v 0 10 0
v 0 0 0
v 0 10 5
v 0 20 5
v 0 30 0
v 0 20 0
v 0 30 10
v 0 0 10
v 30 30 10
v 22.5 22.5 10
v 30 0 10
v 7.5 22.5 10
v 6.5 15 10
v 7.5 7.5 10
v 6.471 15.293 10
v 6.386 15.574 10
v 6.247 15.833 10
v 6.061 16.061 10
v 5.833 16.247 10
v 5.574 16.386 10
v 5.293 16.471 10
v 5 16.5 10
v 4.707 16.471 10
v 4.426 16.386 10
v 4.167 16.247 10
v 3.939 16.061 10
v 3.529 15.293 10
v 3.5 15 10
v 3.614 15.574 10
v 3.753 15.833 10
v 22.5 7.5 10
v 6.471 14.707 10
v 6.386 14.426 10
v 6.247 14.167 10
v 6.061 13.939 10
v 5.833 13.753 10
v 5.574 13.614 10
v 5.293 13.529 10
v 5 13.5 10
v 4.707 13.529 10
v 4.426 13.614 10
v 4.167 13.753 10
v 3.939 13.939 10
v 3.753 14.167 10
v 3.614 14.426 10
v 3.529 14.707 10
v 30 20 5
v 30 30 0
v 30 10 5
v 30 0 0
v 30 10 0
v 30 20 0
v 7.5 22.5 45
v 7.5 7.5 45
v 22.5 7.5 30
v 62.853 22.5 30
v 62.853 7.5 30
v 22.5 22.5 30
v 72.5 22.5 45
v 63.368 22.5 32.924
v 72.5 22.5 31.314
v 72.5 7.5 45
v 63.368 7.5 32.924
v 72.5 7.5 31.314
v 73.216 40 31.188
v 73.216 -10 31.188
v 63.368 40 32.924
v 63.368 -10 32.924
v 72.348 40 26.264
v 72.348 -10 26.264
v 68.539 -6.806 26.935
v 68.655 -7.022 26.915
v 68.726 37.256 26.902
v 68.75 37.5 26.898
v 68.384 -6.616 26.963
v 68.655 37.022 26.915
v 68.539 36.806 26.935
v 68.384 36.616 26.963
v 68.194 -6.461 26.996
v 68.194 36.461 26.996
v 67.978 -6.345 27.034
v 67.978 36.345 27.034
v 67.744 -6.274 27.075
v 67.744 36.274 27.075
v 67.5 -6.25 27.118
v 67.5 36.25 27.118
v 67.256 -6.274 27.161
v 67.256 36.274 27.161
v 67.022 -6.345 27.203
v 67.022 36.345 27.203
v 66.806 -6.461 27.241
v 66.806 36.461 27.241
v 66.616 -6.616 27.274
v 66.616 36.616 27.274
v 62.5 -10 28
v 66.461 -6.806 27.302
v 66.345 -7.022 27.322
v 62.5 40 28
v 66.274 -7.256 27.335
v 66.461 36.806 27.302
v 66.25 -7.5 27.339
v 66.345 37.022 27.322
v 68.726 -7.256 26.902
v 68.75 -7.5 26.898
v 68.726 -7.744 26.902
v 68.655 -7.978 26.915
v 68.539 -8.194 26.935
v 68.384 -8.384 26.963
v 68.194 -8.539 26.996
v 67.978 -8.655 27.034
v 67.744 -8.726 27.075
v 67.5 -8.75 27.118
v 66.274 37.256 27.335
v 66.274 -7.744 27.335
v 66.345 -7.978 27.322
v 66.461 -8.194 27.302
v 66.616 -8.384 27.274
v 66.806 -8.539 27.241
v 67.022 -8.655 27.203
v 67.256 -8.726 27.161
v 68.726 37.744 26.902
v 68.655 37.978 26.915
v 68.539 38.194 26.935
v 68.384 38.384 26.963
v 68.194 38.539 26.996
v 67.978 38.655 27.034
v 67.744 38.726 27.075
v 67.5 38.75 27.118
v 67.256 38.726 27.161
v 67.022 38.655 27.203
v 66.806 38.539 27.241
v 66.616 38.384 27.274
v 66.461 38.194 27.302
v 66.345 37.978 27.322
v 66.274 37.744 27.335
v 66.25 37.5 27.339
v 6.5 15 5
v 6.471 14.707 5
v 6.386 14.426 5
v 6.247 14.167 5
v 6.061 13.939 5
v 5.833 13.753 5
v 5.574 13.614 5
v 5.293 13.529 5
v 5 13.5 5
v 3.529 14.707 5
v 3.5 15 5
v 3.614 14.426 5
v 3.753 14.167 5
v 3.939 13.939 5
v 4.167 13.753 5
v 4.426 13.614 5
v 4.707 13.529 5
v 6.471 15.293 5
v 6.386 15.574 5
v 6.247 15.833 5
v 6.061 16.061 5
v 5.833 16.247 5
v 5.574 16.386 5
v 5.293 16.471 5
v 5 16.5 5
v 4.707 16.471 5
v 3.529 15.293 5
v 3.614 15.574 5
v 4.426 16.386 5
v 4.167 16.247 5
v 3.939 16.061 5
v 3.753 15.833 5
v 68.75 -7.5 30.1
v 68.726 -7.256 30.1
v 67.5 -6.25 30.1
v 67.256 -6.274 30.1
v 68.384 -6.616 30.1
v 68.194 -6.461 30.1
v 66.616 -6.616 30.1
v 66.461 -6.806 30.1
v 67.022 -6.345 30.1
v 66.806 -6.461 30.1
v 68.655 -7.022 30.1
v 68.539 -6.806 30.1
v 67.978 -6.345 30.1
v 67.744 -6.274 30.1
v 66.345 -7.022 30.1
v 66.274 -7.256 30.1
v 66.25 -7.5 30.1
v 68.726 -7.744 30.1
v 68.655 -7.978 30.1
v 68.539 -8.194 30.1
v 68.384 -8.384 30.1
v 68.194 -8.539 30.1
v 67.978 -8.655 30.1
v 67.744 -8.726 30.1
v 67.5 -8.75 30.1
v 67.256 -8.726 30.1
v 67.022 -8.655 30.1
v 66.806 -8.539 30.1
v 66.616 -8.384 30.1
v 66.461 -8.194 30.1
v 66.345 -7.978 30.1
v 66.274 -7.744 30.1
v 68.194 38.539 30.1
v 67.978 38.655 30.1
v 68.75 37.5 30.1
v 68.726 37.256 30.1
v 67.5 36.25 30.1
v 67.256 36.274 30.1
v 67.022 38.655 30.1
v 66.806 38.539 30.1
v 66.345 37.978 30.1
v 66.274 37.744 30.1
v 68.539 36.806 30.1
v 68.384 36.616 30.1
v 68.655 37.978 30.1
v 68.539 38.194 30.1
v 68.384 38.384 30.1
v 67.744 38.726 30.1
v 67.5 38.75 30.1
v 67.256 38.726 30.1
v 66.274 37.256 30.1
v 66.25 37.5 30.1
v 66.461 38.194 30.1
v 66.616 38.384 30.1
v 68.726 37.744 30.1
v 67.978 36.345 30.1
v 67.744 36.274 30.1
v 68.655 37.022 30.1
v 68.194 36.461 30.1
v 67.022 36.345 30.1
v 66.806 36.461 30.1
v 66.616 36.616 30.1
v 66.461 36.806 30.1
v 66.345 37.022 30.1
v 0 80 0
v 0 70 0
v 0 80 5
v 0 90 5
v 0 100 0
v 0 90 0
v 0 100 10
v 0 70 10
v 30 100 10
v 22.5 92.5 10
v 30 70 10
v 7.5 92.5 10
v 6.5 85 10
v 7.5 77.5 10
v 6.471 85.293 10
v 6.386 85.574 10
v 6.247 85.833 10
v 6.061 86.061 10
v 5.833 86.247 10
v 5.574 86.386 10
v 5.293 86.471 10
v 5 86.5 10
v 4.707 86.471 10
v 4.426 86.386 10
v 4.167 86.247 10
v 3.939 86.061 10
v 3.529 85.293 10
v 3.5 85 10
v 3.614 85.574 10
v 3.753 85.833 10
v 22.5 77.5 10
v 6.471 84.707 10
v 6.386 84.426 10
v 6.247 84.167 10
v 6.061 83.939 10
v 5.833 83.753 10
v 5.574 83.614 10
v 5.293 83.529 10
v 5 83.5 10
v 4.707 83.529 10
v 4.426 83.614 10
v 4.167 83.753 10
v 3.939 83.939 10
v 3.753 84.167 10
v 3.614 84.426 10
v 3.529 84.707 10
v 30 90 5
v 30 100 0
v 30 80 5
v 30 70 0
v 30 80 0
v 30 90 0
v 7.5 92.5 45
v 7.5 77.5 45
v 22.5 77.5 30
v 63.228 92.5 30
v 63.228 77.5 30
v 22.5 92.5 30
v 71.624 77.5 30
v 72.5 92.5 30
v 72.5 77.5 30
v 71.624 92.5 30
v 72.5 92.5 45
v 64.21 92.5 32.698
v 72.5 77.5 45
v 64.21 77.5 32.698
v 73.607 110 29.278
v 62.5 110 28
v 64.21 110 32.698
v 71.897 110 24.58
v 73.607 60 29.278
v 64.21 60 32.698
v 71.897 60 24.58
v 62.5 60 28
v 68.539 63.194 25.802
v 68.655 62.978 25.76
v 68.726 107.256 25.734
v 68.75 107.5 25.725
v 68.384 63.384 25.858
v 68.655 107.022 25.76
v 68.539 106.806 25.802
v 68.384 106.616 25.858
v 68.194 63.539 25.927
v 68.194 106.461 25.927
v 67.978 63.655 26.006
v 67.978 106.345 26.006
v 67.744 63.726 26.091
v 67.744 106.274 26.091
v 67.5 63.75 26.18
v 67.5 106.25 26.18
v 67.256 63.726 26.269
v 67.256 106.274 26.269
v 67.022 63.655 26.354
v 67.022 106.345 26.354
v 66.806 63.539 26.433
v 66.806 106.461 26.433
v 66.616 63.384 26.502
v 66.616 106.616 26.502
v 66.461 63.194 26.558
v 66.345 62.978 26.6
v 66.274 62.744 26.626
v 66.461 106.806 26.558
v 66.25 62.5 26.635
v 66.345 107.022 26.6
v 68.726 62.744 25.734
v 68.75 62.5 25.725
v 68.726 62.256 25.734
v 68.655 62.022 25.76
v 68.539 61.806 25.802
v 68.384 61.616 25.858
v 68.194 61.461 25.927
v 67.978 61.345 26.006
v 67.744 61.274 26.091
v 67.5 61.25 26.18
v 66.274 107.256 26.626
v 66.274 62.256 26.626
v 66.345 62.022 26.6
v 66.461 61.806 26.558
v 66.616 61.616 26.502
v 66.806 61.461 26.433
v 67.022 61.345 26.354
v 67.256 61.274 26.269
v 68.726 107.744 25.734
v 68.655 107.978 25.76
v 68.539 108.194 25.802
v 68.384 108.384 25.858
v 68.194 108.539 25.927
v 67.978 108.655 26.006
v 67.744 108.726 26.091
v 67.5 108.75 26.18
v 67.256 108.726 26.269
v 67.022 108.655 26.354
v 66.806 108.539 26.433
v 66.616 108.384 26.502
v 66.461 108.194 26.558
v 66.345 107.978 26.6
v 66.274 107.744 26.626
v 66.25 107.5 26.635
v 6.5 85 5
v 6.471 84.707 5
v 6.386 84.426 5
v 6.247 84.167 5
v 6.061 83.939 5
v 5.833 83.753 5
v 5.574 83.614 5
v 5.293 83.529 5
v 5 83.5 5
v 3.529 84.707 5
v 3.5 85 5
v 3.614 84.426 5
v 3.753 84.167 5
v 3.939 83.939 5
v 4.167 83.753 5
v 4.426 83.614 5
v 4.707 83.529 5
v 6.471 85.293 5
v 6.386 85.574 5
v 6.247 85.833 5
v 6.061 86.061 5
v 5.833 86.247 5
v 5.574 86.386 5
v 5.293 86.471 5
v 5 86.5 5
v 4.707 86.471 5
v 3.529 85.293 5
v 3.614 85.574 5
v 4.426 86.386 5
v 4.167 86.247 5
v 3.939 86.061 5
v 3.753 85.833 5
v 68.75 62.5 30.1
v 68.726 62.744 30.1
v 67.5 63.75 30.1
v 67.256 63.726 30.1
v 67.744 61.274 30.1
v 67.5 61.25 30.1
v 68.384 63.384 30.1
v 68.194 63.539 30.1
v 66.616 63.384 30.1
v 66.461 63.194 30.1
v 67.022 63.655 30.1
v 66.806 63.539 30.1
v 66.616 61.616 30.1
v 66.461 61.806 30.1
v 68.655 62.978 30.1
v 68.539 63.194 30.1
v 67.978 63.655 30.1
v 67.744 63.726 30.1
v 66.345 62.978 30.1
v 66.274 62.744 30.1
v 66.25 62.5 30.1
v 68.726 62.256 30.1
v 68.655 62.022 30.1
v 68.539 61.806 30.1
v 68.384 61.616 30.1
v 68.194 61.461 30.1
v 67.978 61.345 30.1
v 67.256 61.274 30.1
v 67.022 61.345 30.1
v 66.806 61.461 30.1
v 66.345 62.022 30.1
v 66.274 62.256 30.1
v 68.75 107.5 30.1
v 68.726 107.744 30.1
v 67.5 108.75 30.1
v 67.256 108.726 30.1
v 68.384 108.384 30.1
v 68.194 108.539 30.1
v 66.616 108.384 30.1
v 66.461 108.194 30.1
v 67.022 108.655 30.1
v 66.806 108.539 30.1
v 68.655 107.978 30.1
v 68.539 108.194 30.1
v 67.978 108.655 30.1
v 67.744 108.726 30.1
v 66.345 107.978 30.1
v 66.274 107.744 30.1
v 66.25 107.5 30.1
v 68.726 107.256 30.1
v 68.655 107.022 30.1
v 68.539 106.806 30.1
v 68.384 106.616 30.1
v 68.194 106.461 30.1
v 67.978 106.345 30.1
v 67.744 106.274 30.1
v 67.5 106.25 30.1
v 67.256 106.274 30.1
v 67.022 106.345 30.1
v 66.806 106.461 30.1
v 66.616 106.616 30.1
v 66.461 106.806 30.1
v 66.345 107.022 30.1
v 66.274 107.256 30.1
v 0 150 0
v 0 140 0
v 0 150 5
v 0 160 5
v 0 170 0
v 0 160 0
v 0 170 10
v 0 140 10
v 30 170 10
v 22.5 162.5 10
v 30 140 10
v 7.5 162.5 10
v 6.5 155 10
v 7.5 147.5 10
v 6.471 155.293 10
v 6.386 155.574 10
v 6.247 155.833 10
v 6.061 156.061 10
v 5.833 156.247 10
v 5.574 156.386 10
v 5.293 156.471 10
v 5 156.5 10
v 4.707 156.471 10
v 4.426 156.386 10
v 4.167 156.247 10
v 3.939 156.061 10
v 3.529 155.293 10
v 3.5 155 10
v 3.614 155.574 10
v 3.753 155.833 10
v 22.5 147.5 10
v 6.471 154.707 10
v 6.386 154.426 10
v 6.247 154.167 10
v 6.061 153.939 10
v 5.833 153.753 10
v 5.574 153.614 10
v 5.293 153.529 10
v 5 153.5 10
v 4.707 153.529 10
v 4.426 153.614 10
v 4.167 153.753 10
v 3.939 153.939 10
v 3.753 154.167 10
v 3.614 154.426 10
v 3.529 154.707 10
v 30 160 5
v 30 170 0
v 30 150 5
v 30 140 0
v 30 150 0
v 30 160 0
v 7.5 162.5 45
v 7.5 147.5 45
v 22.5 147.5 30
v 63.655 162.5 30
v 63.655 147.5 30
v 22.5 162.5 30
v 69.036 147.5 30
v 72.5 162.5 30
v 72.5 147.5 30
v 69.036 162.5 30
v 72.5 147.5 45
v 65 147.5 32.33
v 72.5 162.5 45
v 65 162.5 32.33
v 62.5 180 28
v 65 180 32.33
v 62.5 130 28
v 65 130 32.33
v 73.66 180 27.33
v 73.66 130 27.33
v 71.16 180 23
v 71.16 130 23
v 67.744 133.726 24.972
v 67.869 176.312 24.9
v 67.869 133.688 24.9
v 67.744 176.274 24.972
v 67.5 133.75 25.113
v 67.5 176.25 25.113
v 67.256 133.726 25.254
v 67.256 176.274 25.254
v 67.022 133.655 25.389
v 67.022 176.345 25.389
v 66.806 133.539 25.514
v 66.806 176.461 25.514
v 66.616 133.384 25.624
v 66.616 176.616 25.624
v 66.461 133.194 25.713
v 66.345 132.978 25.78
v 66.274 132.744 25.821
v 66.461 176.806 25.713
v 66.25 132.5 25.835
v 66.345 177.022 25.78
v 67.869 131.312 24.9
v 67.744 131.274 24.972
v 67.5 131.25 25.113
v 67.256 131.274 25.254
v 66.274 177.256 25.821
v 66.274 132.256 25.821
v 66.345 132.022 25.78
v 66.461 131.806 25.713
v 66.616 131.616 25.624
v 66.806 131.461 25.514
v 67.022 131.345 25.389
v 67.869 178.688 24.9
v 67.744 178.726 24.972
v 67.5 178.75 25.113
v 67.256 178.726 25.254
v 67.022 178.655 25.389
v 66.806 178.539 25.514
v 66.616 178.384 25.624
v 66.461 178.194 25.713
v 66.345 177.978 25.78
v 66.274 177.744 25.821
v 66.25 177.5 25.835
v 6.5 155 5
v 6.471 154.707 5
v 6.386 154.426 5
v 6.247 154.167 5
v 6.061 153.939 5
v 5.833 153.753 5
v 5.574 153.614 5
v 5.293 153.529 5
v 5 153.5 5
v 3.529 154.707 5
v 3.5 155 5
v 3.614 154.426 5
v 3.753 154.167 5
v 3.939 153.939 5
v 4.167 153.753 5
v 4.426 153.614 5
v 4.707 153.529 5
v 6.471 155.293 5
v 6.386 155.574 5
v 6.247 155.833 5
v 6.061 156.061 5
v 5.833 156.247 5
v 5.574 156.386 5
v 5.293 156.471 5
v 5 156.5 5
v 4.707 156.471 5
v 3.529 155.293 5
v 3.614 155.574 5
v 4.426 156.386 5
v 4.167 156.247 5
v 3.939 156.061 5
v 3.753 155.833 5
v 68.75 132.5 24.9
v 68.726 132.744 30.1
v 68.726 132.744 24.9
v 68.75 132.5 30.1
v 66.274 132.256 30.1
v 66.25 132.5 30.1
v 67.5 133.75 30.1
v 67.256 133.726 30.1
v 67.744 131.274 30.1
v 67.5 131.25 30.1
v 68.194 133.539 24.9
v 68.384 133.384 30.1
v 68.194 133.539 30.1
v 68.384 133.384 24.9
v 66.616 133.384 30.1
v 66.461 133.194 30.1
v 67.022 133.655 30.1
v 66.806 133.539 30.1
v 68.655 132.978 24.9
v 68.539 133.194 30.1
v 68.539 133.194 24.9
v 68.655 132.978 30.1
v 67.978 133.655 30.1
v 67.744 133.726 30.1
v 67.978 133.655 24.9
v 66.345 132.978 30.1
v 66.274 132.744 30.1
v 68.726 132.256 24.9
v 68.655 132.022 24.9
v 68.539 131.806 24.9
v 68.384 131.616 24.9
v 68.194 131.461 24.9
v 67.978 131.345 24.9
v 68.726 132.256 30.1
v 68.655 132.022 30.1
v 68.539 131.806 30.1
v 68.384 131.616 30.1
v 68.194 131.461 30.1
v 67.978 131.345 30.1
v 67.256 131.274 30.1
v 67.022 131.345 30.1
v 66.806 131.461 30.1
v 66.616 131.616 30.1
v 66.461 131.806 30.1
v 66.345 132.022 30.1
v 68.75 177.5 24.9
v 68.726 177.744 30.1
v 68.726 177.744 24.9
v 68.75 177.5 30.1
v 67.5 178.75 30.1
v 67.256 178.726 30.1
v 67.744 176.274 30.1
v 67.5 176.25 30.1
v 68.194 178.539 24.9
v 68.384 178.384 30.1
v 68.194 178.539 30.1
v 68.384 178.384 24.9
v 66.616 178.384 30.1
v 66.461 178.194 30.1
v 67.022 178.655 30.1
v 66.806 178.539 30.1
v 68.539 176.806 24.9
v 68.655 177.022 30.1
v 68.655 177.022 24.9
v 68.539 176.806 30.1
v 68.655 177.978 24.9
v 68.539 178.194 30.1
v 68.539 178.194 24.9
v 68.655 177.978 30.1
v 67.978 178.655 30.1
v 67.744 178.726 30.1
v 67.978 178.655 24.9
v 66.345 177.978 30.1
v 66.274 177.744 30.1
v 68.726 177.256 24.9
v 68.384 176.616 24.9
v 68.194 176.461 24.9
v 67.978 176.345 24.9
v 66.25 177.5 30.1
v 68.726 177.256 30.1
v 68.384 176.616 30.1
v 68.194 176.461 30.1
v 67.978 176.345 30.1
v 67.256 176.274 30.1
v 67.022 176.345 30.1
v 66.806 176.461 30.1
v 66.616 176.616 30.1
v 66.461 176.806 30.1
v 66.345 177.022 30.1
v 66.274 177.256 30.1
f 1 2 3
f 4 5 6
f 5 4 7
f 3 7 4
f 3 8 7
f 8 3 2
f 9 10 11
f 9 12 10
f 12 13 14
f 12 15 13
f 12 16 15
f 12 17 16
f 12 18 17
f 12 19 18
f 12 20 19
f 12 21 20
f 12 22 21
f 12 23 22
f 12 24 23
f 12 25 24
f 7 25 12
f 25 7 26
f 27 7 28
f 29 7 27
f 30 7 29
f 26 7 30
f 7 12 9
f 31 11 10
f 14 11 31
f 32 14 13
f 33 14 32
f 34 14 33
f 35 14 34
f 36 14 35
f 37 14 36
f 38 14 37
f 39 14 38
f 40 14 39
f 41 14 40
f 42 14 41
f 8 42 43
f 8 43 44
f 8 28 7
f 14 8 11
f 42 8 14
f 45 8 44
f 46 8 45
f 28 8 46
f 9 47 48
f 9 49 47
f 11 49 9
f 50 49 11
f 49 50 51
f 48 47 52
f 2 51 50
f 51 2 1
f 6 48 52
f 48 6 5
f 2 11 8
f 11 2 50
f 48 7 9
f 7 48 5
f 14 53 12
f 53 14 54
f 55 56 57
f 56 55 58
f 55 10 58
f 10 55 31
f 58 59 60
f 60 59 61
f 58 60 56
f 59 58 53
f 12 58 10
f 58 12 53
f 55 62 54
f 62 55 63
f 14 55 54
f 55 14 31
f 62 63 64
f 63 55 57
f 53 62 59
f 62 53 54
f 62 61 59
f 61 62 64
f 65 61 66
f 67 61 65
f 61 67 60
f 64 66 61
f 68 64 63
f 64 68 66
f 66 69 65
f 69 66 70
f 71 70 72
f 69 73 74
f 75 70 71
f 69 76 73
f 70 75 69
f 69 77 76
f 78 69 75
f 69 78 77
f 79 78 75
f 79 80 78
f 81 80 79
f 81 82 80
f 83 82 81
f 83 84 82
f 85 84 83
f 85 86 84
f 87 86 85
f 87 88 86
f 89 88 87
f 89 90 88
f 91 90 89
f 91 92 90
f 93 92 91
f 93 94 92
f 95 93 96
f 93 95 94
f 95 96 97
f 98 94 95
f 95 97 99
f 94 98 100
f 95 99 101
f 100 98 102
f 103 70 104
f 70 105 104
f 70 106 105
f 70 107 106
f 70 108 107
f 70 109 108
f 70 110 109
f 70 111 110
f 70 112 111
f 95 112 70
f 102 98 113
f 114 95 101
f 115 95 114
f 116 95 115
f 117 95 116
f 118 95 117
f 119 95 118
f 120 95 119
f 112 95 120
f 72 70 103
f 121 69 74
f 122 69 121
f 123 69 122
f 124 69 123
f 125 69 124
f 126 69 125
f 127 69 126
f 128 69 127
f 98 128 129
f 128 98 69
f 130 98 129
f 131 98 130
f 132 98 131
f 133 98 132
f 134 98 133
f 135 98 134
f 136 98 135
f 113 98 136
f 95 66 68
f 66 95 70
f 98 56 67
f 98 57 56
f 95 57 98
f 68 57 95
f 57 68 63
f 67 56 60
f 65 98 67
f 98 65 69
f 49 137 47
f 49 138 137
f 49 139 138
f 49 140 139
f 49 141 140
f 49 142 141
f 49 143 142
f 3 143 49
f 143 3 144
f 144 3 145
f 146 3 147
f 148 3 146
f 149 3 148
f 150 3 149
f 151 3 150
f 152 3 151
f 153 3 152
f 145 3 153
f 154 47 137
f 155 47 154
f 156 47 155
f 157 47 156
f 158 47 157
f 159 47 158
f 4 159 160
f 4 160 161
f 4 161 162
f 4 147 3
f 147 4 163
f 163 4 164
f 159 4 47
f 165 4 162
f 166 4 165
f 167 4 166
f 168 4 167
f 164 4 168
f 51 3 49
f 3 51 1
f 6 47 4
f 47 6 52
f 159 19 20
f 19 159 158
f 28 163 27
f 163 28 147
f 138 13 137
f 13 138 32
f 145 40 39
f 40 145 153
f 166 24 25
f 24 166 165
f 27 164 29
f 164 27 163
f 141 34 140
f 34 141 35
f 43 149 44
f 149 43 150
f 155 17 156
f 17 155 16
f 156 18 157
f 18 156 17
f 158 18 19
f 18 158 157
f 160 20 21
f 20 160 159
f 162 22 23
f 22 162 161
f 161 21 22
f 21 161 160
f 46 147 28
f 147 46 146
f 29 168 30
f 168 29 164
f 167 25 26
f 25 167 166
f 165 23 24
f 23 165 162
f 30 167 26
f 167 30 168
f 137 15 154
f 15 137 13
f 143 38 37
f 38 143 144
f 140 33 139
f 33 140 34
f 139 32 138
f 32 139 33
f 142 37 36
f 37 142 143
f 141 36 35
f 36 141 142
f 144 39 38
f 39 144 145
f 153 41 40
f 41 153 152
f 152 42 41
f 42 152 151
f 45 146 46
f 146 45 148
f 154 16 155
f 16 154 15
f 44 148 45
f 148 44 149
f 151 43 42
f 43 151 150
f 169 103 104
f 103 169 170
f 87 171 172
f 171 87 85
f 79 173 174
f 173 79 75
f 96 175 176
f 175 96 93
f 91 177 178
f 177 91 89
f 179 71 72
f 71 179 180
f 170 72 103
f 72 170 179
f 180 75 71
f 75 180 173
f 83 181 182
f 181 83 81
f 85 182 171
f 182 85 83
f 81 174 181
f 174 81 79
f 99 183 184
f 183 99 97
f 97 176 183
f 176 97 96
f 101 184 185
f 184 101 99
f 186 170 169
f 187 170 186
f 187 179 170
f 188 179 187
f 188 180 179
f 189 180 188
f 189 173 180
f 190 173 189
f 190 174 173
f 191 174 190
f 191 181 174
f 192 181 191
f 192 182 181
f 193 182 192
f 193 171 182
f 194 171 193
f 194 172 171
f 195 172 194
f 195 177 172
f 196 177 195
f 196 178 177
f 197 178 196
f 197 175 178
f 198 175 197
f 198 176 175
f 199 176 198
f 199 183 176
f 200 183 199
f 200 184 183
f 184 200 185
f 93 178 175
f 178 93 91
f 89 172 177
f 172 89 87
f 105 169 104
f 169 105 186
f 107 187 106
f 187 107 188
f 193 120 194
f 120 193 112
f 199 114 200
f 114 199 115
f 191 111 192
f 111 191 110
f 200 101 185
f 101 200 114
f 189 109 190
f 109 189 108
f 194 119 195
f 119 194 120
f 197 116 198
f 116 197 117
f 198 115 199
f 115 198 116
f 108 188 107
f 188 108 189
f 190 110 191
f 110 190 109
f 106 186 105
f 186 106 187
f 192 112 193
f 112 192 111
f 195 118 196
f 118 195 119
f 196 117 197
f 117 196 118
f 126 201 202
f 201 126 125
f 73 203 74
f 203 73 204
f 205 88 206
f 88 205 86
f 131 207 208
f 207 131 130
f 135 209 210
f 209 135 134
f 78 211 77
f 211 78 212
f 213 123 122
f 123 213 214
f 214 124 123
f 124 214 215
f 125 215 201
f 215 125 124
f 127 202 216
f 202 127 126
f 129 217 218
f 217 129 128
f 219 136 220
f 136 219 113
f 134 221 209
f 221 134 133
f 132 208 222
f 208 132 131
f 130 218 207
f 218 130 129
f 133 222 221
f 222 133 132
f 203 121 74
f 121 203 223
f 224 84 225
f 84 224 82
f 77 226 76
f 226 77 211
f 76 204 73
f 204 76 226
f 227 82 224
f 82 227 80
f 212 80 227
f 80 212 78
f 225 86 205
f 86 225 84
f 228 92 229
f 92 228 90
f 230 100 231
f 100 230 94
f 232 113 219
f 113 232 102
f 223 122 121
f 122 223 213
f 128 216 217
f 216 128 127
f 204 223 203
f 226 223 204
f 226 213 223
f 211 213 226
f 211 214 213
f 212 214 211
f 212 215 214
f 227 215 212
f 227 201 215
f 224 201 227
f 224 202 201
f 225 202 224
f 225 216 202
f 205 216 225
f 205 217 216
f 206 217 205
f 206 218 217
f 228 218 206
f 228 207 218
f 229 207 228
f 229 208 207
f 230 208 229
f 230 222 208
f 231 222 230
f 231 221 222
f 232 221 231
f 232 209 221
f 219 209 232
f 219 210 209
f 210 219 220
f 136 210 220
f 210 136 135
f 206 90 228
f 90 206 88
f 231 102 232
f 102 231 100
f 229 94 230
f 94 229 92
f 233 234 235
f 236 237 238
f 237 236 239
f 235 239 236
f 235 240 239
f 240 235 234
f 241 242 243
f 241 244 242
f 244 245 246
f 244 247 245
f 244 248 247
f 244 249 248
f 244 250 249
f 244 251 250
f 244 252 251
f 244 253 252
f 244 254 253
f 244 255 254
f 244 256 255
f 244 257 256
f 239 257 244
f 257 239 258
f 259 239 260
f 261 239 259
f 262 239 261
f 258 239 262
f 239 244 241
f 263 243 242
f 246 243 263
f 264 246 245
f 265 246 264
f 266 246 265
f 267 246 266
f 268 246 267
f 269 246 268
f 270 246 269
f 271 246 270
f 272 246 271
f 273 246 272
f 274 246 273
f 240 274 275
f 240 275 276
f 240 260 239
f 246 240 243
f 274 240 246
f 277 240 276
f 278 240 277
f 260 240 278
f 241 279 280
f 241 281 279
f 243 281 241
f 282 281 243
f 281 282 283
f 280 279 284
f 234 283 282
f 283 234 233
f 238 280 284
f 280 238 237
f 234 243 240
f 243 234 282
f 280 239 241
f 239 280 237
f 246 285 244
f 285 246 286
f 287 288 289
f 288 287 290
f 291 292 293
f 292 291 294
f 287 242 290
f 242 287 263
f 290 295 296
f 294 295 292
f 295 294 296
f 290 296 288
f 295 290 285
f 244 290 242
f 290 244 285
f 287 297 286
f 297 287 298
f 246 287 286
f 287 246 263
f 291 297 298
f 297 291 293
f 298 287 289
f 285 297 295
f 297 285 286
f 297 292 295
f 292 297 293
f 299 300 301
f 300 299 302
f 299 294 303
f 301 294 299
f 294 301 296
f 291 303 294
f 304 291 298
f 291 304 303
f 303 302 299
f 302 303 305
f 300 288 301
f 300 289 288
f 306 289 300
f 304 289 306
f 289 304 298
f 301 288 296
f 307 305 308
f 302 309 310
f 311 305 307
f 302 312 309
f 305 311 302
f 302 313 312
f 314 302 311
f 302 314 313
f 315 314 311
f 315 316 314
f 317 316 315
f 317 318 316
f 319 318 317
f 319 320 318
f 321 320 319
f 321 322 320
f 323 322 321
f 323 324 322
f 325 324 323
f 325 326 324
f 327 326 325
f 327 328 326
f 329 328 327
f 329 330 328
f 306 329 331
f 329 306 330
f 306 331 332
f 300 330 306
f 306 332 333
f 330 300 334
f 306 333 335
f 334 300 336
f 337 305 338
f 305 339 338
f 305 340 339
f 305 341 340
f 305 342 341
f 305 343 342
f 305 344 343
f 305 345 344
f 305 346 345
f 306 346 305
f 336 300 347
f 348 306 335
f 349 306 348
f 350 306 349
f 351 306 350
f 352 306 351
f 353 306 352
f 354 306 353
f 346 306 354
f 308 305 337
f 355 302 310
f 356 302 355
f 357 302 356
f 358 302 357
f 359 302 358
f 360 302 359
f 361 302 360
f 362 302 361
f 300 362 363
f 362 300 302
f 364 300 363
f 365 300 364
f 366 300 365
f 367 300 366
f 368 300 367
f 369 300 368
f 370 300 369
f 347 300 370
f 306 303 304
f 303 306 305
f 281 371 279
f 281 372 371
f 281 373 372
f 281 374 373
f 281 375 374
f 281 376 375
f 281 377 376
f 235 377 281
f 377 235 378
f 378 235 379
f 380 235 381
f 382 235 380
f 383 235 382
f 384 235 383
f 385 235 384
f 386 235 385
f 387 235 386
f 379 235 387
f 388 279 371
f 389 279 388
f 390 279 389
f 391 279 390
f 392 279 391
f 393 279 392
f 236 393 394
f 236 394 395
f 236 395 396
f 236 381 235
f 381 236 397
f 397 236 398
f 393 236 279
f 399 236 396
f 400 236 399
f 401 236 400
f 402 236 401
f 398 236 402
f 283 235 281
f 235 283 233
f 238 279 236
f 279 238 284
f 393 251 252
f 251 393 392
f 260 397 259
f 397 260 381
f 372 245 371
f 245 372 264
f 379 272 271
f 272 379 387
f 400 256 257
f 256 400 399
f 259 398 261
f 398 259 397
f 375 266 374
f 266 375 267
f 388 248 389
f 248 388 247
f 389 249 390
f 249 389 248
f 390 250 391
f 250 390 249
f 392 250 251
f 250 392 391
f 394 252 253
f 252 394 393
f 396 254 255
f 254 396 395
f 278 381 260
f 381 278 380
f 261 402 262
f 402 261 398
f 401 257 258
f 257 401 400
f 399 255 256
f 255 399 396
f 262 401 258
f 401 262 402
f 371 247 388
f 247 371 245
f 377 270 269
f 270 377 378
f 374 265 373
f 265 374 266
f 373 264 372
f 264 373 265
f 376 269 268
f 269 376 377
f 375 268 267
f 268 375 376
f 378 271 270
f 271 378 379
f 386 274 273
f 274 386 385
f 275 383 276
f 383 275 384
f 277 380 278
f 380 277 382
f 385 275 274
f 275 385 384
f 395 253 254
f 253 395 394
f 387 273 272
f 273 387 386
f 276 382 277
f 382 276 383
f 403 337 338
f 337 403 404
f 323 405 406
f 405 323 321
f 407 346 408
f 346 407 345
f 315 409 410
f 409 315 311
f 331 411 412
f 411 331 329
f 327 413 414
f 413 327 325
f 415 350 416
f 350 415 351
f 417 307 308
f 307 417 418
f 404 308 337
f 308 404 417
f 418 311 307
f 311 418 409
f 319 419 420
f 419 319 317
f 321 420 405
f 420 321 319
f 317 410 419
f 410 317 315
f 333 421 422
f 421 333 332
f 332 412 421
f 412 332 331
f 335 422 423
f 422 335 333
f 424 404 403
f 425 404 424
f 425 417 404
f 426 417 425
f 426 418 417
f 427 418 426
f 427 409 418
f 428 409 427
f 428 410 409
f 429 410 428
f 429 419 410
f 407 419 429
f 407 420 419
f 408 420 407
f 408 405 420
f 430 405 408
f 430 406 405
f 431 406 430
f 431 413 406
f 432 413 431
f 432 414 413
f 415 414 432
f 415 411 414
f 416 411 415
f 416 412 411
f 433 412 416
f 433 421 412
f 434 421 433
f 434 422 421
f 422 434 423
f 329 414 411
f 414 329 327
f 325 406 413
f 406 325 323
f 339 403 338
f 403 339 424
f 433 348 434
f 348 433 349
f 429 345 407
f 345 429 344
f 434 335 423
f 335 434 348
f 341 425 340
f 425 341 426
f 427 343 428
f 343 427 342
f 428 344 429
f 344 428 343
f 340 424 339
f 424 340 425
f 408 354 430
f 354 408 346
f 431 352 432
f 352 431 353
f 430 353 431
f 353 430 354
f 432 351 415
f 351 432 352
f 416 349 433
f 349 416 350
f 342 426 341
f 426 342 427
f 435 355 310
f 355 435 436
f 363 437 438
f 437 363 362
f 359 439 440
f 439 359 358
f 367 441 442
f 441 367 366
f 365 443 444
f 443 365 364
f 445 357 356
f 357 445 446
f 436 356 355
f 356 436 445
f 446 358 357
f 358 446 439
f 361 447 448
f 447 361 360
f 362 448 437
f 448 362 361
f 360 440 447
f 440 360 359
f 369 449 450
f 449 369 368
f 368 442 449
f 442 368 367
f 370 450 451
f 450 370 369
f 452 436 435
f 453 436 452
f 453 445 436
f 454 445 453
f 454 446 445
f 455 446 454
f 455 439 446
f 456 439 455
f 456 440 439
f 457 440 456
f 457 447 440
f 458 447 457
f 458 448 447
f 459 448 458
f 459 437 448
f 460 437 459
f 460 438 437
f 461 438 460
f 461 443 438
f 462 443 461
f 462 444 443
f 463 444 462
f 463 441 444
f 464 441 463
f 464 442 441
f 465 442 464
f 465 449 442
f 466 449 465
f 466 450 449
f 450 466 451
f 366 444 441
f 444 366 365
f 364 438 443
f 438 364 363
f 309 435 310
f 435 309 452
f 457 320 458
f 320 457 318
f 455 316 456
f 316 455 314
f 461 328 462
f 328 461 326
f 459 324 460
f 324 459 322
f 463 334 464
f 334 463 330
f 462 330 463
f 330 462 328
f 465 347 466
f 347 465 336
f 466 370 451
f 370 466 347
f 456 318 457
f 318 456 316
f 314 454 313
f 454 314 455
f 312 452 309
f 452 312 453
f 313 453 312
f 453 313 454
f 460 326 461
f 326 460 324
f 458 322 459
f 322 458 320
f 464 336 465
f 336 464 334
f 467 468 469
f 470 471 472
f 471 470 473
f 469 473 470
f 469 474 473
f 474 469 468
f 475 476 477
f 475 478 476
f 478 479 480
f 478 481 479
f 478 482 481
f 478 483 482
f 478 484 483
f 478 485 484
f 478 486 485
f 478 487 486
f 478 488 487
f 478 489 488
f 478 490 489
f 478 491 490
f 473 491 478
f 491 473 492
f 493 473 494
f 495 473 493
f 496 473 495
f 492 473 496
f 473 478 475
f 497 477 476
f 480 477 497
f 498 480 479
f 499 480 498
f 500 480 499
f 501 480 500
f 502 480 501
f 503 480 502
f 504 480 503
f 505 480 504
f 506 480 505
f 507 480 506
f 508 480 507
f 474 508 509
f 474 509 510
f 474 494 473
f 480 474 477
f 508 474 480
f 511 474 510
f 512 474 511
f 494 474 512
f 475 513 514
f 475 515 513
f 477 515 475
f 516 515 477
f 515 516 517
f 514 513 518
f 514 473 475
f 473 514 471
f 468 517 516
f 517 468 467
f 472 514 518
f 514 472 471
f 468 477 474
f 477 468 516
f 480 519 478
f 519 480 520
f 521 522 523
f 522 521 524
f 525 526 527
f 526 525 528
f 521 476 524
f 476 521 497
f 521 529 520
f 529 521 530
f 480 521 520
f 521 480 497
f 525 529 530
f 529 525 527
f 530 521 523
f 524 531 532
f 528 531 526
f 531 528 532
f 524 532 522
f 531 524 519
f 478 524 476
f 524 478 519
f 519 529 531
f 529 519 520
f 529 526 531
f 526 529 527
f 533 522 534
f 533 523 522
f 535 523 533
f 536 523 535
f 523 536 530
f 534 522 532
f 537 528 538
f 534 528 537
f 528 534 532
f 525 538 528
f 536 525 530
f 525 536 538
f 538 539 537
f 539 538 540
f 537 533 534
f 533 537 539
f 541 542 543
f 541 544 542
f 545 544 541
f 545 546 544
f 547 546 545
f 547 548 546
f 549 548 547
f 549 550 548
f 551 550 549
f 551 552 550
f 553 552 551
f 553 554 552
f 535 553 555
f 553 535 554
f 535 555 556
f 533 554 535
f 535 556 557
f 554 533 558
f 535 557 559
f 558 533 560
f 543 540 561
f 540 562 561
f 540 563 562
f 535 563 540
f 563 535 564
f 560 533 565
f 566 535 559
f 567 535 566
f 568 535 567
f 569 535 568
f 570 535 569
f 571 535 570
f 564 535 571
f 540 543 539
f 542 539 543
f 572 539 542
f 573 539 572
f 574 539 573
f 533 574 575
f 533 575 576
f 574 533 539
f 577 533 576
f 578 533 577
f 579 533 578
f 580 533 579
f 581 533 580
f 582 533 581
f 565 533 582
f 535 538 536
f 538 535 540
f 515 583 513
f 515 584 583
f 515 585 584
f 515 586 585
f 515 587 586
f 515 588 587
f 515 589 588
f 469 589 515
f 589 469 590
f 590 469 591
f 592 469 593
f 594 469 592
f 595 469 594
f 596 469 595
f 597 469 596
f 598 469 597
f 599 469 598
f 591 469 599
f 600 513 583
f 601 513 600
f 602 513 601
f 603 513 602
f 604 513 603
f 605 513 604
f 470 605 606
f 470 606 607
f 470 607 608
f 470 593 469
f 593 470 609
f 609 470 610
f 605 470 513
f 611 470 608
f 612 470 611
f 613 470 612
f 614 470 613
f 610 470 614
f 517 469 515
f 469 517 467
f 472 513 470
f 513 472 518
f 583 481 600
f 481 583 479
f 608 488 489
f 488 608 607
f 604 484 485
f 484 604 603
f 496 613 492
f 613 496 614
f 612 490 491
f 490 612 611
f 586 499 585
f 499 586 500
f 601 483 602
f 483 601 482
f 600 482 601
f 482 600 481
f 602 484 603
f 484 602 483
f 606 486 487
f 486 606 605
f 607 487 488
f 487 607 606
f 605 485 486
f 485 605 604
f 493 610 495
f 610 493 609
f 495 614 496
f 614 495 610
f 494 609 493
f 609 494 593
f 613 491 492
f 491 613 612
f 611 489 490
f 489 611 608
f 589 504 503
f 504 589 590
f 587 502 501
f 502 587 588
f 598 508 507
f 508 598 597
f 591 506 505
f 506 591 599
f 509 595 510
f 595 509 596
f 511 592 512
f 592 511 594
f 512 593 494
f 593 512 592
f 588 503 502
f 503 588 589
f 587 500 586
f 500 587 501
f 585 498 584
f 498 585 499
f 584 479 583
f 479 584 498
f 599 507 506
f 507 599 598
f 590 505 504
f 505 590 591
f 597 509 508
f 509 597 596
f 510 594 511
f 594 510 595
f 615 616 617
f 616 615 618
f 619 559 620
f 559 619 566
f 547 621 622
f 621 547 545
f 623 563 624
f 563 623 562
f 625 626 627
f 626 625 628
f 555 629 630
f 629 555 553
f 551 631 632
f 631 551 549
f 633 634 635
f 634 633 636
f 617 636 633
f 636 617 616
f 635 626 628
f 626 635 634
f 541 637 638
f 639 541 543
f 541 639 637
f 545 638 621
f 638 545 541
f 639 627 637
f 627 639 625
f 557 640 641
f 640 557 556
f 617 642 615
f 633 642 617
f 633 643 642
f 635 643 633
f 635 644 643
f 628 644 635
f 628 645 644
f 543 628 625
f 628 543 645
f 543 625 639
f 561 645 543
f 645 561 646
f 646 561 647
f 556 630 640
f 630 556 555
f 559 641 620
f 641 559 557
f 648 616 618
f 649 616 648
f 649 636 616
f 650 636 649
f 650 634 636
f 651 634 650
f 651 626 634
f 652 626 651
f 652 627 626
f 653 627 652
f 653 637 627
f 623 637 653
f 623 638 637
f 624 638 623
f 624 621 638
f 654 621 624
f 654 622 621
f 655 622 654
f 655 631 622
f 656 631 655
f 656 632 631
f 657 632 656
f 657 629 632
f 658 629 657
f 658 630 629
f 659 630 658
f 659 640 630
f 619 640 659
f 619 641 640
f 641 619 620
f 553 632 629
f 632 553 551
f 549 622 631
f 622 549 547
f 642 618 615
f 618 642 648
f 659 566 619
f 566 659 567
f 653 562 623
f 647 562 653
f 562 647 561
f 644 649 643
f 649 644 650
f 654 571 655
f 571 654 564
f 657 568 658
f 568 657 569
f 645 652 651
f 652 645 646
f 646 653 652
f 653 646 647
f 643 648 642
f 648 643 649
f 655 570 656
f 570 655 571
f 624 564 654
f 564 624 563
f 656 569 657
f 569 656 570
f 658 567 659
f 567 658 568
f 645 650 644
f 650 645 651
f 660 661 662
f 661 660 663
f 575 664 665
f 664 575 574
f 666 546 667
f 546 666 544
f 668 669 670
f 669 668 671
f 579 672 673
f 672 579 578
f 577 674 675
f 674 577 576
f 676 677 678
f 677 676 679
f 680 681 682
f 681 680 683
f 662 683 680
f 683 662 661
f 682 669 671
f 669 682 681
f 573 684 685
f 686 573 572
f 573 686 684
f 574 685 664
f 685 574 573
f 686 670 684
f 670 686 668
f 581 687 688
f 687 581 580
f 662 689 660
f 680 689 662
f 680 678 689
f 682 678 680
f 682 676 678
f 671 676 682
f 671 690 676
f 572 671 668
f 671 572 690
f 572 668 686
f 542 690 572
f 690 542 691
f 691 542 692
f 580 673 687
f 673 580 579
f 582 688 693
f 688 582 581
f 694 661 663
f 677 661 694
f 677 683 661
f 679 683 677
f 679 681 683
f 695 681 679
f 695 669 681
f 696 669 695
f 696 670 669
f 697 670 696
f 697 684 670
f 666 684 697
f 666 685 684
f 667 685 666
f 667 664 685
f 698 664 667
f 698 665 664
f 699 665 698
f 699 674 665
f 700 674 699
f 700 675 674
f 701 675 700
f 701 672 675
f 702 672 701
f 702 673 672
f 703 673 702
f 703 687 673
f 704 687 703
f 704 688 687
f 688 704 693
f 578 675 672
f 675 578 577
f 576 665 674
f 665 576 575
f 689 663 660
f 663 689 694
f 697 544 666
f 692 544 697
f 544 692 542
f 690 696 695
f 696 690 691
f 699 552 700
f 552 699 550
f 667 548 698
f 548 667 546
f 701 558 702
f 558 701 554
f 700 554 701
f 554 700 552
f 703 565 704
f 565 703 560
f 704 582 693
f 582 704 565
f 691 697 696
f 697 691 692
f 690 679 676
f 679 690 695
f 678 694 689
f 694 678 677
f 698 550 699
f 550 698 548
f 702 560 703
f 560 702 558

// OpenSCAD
// Parameters
// all dimensions in mm
bar_width_quick_grip = 10;   // Width of the bar (adjust to your bar size)
bar_thickness_quick_grip = 5;  // Thickness of the bar (adjust to your bar size)
screw_hole_diameter = 3;  // Diameter of the screw hole
screw_offset_from_edge = 5;  // Offset for the screw hole from the edge of the bar

// 1. Attachment-block parameters
attachment_block_length = 30;  // Length of the attachment block
attachment_block_width = 30;   // Width of the attachment block
attachment_block_thickness = 10;  // Thickness of the attachment block

// 2. Mid-block parameters
mid_block_height = 20;  // Height of the mid-block
mid_block_width = 15;   // Width of the mid-block

// 3. Camera attachment parameters
camera_attachment_width = mid_block_width;  // Width of the camera attachment block
camera_attachment_depth = 15; // Depth of the camera attachment block
camera_attachment_height = 50;  // Height of the camera attachment block

// 4. Camera screw block parameters
camera_screw_height = 10;  // Height of the camera screw block
camera_screw_depth = 5; // Depth of the camera screw block
camera_screw_width = 50;  // Width of the camera screw block
camera_screw_width_rotation = 10;


// 5.   New parameters for screw holes
intel_realsense_screw_hole_diameter = 2.5;  // Diameter of the screw holes
intel_realsense_screw_hole_spacing = 45;    // Spacing between the two screw holes

// 6. New parameters for screw holes




// Attachment block
module attachment(screw_rotation) {
    difference() {
        union() {
            // 1. Attachment-block
            cube([attachment_block_length, attachment_block_width, attachment_block_thickness]);
            
            // 2. Mid-block
            translate([attachment_block_length/2 - mid_block_width/2, attachment_block_width/2 - mid_block_width/2, attachment_block_thickness])
                cube([mid_block_width, mid_block_width, mid_block_height]);
            
            // 3. Camera attachment
            translate([attachment_block_length/2 - mid_block_width/2, attachment_block_width/2 - camera_attachment_width/2, attachment_block_thickness + mid_block_height])
                cube([mid_block_width + camera_attachment_height, camera_attachment_width, camera_attachment_depth]);
            
            // 4. Camera screw block (attached to bottom face of camera attachment, at top of x-axis)
            translate([attachment_block_length/2 - mid_block_width/2 + mid_block_width + camera_attachment_height - camera_screw_height,
                       attachment_block_width/2 - camera_screw_width/2,
                       attachment_block_thickness + mid_block_height - camera_screw_depth + 3])
                rotate([0, screw_rotation, 0])  // Use the parameter for rotation
                cube([camera_screw_height, camera_screw_width, camera_screw_depth]);
        }

        // Subtract a hole for the bar to fit in the attachment-block
        translate([-0.1, (attachment_block_width - bar_width_quick_grip) / 2, -0.1])
            cube([attachment_block_length + 0.2, bar_width_quick_grip, bar_thickness_quick_grip + 0.1]);

        // Subtract the screw hole in the attachment-block
        translate([screw_offset_from_edge, attachment_block_width / 2, -0.1])
            cylinder(h = attachment_block_thickness + 0.2, d = screw_hole_diameter, $fn=32);

        // Add two screw holes for Intel RealSense camera
        translate([attachment_block_length/2 - mid_block_width/2 + mid_block_width + camera_attachment_height - camera_screw_height/2,
                   attachment_block_width/2 - intel_realsense_screw_hole_spacing/2,
                   attachment_block_thickness + mid_block_height - camera_screw_depth - 0.1])
            cylinder(h = camera_screw_depth + 0.2, d = intel_realsense_screw_hole_diameter, $fn=32);

        // Second screw hole for Intel RealSense camera
        translate([attachment_block_length/2 - mid_block_width/2 + mid_block_width + camera_attachment_height - camera_screw_height/2,
                   attachment_block_width/2 + intel_realsense_screw_hole_spacing/2,
                   attachment_block_thickness + mid_block_height - camera_screw_depth - 0.1])
            cylinder(h = camera_screw_depth + 0.2, d = intel_realsense_screw_hole_diameter, $fn=32);
    }
}

// Render three attachments with different rotations and positions
translate([0, 0, 0]) attachment(10);
translate([0, attachment_block_width + 40, 0]) attachment(20);
translate([0, (attachment_block_width + 40) * 2, 0]) attachment(30);
